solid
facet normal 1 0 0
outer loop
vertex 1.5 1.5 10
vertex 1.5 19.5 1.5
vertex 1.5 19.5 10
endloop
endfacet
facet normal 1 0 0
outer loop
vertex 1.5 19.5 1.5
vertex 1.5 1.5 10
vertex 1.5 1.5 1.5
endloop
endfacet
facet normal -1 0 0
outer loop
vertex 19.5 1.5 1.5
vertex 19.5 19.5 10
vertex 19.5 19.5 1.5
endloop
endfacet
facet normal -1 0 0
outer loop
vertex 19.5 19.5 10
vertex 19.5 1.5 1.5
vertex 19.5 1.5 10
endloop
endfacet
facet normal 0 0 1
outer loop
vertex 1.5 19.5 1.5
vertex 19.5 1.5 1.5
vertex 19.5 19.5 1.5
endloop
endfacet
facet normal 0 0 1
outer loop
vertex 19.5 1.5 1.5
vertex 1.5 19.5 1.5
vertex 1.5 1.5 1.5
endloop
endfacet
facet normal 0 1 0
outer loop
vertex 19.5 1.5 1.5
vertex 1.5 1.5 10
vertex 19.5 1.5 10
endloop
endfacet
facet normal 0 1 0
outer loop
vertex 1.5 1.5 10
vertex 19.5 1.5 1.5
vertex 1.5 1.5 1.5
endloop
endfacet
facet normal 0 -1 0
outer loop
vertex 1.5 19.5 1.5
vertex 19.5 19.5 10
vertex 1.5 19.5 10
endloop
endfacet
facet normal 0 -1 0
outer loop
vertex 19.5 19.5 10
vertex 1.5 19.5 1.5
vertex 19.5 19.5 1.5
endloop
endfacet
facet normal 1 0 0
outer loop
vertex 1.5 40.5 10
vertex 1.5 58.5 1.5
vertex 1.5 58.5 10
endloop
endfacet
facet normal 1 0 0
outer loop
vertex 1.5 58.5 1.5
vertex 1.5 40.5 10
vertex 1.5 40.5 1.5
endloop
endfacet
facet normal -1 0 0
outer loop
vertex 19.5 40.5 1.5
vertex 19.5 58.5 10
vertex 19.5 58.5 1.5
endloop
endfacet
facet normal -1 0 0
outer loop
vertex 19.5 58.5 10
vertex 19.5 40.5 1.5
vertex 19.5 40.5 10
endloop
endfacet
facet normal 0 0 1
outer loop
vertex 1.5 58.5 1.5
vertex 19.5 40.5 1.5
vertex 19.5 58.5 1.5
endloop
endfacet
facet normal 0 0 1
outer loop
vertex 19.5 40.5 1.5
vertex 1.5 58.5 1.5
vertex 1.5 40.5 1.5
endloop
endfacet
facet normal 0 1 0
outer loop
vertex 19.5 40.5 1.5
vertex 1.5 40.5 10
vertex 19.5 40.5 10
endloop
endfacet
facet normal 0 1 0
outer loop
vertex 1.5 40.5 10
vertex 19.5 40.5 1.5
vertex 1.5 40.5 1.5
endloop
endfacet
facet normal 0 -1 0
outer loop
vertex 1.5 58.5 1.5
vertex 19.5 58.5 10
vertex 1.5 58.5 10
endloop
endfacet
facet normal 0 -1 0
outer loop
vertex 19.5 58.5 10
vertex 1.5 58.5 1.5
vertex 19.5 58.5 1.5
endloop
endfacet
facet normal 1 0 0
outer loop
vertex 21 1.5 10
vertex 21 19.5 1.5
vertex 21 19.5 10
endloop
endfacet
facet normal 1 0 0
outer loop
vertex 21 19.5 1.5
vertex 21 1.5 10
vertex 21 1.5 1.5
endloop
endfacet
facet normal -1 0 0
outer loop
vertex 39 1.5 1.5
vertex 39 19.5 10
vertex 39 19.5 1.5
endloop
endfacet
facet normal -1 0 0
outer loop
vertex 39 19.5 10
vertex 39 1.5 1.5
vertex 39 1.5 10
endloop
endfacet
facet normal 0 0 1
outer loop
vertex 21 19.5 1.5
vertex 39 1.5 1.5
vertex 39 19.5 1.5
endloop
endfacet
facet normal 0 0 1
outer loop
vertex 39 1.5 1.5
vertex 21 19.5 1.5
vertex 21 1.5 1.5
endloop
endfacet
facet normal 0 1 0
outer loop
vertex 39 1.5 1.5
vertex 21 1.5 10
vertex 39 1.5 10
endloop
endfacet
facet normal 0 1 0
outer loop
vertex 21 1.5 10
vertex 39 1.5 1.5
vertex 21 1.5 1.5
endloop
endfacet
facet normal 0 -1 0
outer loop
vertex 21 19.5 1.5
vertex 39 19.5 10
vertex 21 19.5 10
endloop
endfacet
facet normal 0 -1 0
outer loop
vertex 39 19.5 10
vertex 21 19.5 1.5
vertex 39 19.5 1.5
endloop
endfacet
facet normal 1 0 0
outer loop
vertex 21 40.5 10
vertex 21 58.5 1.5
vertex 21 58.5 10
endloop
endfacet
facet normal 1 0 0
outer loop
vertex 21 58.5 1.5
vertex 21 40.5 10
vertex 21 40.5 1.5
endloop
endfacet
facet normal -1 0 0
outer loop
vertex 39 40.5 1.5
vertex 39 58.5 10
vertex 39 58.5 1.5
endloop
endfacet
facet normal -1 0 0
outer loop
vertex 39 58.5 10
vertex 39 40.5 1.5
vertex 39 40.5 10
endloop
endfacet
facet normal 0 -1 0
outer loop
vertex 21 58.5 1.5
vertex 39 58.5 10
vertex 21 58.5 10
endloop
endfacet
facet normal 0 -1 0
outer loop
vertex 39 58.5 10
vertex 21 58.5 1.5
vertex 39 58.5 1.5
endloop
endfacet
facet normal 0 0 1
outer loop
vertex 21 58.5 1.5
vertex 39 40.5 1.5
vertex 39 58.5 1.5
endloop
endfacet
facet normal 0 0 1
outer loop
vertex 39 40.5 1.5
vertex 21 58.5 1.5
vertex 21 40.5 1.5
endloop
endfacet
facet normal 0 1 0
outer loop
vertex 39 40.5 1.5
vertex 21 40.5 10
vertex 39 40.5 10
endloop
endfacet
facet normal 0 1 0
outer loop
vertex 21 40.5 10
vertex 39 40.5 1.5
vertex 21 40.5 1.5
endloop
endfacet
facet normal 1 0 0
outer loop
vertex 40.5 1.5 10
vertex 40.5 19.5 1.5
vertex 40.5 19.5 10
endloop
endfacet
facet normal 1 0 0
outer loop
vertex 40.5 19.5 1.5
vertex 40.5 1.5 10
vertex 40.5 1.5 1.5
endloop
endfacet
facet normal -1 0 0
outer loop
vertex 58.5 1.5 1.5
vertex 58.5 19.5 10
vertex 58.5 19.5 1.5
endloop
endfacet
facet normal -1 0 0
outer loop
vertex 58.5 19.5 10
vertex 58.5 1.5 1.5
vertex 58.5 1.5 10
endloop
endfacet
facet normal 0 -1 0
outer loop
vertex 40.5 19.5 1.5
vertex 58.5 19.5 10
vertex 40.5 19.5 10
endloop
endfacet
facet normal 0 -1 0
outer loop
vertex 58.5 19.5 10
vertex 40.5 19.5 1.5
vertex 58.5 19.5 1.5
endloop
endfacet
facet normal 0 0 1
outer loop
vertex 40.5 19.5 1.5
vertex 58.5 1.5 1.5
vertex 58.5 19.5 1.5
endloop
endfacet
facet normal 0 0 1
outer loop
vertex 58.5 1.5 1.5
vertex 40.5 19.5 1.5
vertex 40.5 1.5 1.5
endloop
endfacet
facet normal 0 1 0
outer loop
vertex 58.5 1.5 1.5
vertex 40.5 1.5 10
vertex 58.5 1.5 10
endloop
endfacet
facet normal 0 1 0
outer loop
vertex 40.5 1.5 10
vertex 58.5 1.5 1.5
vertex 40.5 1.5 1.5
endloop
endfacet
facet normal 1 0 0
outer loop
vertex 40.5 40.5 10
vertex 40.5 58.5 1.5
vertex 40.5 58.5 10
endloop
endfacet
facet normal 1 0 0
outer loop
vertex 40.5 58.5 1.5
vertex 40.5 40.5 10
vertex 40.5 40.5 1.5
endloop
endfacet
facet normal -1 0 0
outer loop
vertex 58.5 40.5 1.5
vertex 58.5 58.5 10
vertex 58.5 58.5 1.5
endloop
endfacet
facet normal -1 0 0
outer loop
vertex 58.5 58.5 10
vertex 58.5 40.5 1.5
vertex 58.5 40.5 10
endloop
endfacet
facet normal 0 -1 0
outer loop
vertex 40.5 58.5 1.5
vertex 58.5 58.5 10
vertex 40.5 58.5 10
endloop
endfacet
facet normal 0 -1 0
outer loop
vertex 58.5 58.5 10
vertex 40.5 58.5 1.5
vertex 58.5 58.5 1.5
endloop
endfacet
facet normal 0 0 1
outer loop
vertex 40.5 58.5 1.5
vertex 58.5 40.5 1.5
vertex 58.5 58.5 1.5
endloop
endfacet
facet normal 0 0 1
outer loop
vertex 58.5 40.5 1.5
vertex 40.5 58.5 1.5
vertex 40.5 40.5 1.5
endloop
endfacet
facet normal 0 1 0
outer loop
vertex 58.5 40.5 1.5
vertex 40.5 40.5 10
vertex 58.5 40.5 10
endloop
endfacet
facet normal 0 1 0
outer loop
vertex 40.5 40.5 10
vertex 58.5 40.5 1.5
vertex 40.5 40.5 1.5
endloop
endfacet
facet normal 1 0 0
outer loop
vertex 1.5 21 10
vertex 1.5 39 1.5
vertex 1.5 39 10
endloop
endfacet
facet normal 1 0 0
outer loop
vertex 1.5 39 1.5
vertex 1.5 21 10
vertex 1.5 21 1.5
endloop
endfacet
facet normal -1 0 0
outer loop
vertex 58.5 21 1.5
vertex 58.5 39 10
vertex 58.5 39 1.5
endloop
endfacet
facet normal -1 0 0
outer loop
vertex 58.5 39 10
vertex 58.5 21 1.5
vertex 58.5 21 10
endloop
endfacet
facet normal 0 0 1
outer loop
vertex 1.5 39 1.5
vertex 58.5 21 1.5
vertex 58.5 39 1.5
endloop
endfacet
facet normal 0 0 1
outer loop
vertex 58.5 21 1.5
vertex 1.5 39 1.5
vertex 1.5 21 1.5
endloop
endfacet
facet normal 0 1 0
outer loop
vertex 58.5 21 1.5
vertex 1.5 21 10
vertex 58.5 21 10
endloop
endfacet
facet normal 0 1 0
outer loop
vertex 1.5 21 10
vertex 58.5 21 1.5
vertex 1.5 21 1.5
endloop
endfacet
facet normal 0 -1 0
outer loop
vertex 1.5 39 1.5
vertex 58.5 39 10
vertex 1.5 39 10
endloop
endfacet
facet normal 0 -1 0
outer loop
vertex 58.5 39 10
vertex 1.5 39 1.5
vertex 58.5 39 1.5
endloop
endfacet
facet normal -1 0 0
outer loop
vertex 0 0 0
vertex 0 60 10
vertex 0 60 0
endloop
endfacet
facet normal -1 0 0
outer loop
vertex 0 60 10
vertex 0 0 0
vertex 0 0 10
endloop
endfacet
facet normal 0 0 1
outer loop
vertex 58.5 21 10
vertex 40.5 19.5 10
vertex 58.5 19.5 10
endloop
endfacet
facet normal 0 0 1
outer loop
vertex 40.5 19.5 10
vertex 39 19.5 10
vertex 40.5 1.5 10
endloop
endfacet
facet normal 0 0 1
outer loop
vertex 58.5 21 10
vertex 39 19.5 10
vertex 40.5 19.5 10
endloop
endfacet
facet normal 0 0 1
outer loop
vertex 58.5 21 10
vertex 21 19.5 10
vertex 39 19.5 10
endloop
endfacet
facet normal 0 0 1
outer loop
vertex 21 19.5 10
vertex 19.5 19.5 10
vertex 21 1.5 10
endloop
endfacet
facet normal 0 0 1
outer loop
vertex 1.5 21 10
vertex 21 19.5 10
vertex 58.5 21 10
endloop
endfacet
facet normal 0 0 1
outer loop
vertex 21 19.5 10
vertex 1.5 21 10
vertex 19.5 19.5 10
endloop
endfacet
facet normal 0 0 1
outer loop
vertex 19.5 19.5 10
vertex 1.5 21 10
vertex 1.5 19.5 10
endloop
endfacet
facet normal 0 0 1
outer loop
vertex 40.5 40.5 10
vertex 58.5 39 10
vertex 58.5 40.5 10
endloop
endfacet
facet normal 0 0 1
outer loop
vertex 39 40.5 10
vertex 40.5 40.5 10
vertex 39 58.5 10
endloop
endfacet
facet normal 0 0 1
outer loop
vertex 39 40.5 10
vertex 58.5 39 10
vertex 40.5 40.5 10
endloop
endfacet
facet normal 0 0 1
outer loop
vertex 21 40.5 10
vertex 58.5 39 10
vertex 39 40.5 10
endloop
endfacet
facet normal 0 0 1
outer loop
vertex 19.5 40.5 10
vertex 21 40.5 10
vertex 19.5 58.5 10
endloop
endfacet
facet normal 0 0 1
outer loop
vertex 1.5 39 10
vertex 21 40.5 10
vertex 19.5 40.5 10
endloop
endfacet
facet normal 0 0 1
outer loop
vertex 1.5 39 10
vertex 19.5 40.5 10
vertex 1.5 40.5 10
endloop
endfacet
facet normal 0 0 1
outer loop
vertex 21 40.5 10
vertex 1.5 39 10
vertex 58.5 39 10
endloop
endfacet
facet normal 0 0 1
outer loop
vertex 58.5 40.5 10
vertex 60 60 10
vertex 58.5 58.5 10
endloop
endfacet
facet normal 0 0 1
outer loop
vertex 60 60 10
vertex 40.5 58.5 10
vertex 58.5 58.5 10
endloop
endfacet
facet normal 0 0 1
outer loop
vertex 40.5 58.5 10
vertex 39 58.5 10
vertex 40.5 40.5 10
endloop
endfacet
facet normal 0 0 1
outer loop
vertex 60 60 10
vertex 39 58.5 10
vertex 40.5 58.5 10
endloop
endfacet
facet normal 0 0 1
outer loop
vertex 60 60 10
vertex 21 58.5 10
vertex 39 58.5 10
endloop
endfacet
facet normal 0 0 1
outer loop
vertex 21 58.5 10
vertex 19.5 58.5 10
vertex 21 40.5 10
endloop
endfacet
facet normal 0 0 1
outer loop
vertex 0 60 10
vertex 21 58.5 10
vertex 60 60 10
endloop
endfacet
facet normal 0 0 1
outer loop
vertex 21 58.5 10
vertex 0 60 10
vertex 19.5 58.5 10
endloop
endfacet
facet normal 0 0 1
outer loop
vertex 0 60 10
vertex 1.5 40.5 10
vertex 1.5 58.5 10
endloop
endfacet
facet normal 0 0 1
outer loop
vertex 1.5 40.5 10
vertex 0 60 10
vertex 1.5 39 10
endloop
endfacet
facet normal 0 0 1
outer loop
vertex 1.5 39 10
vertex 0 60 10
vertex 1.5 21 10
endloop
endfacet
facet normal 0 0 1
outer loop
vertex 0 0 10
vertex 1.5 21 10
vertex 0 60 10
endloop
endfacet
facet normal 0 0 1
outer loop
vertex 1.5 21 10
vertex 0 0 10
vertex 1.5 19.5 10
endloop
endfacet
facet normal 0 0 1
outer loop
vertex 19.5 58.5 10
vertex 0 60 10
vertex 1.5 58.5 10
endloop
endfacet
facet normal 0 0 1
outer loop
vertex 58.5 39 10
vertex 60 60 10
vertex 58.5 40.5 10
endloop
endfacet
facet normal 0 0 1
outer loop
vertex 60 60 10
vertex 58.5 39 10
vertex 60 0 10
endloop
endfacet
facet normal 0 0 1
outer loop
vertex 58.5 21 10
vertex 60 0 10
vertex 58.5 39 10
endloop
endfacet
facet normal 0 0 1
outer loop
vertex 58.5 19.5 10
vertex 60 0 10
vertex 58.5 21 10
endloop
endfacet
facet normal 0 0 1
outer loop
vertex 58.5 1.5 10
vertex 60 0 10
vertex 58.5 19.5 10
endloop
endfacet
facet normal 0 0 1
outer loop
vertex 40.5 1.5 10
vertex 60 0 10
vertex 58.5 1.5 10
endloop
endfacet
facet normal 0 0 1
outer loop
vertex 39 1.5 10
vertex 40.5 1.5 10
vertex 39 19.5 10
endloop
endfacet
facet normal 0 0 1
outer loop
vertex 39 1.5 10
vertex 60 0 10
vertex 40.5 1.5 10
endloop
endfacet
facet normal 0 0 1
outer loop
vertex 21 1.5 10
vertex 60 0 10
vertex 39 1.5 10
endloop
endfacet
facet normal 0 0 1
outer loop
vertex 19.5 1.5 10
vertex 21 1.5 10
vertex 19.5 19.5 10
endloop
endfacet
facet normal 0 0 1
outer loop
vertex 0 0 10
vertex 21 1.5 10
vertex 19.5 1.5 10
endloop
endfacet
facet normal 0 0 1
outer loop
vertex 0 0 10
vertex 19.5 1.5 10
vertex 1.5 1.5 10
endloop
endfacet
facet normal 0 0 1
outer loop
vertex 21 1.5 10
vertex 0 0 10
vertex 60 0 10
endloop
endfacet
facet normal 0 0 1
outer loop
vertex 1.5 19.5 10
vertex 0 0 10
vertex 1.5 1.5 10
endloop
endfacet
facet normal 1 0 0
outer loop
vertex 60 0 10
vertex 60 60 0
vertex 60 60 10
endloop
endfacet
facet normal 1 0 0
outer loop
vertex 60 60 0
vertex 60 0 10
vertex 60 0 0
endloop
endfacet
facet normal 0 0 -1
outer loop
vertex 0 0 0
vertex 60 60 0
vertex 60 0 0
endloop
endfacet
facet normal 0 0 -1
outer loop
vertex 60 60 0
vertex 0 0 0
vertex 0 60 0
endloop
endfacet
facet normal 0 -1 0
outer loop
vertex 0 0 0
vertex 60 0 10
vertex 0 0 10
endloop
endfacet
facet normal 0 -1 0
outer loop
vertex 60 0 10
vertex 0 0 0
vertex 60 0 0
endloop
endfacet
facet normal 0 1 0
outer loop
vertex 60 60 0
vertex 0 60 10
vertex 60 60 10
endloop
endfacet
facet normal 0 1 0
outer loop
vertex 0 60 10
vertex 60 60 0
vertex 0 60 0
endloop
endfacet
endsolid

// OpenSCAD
wall= 1.5;
size = 60;
hei = 10;

cell = (size - 4*wall)/3;

difference () {
  cube([size, size, hei]);

  translate([wall, wall, wall]) {
    for (x = [1:3])
    for (y = [1:2:3])
      translate([(x-1) * (cell + wall), (y-1) * (cell + wall), 0])
      cube([cell, cell, hei]);
    
    translate([0, cell + wall, 0])
    cube([size - 2*wall, cell, hei]);
  }
}
